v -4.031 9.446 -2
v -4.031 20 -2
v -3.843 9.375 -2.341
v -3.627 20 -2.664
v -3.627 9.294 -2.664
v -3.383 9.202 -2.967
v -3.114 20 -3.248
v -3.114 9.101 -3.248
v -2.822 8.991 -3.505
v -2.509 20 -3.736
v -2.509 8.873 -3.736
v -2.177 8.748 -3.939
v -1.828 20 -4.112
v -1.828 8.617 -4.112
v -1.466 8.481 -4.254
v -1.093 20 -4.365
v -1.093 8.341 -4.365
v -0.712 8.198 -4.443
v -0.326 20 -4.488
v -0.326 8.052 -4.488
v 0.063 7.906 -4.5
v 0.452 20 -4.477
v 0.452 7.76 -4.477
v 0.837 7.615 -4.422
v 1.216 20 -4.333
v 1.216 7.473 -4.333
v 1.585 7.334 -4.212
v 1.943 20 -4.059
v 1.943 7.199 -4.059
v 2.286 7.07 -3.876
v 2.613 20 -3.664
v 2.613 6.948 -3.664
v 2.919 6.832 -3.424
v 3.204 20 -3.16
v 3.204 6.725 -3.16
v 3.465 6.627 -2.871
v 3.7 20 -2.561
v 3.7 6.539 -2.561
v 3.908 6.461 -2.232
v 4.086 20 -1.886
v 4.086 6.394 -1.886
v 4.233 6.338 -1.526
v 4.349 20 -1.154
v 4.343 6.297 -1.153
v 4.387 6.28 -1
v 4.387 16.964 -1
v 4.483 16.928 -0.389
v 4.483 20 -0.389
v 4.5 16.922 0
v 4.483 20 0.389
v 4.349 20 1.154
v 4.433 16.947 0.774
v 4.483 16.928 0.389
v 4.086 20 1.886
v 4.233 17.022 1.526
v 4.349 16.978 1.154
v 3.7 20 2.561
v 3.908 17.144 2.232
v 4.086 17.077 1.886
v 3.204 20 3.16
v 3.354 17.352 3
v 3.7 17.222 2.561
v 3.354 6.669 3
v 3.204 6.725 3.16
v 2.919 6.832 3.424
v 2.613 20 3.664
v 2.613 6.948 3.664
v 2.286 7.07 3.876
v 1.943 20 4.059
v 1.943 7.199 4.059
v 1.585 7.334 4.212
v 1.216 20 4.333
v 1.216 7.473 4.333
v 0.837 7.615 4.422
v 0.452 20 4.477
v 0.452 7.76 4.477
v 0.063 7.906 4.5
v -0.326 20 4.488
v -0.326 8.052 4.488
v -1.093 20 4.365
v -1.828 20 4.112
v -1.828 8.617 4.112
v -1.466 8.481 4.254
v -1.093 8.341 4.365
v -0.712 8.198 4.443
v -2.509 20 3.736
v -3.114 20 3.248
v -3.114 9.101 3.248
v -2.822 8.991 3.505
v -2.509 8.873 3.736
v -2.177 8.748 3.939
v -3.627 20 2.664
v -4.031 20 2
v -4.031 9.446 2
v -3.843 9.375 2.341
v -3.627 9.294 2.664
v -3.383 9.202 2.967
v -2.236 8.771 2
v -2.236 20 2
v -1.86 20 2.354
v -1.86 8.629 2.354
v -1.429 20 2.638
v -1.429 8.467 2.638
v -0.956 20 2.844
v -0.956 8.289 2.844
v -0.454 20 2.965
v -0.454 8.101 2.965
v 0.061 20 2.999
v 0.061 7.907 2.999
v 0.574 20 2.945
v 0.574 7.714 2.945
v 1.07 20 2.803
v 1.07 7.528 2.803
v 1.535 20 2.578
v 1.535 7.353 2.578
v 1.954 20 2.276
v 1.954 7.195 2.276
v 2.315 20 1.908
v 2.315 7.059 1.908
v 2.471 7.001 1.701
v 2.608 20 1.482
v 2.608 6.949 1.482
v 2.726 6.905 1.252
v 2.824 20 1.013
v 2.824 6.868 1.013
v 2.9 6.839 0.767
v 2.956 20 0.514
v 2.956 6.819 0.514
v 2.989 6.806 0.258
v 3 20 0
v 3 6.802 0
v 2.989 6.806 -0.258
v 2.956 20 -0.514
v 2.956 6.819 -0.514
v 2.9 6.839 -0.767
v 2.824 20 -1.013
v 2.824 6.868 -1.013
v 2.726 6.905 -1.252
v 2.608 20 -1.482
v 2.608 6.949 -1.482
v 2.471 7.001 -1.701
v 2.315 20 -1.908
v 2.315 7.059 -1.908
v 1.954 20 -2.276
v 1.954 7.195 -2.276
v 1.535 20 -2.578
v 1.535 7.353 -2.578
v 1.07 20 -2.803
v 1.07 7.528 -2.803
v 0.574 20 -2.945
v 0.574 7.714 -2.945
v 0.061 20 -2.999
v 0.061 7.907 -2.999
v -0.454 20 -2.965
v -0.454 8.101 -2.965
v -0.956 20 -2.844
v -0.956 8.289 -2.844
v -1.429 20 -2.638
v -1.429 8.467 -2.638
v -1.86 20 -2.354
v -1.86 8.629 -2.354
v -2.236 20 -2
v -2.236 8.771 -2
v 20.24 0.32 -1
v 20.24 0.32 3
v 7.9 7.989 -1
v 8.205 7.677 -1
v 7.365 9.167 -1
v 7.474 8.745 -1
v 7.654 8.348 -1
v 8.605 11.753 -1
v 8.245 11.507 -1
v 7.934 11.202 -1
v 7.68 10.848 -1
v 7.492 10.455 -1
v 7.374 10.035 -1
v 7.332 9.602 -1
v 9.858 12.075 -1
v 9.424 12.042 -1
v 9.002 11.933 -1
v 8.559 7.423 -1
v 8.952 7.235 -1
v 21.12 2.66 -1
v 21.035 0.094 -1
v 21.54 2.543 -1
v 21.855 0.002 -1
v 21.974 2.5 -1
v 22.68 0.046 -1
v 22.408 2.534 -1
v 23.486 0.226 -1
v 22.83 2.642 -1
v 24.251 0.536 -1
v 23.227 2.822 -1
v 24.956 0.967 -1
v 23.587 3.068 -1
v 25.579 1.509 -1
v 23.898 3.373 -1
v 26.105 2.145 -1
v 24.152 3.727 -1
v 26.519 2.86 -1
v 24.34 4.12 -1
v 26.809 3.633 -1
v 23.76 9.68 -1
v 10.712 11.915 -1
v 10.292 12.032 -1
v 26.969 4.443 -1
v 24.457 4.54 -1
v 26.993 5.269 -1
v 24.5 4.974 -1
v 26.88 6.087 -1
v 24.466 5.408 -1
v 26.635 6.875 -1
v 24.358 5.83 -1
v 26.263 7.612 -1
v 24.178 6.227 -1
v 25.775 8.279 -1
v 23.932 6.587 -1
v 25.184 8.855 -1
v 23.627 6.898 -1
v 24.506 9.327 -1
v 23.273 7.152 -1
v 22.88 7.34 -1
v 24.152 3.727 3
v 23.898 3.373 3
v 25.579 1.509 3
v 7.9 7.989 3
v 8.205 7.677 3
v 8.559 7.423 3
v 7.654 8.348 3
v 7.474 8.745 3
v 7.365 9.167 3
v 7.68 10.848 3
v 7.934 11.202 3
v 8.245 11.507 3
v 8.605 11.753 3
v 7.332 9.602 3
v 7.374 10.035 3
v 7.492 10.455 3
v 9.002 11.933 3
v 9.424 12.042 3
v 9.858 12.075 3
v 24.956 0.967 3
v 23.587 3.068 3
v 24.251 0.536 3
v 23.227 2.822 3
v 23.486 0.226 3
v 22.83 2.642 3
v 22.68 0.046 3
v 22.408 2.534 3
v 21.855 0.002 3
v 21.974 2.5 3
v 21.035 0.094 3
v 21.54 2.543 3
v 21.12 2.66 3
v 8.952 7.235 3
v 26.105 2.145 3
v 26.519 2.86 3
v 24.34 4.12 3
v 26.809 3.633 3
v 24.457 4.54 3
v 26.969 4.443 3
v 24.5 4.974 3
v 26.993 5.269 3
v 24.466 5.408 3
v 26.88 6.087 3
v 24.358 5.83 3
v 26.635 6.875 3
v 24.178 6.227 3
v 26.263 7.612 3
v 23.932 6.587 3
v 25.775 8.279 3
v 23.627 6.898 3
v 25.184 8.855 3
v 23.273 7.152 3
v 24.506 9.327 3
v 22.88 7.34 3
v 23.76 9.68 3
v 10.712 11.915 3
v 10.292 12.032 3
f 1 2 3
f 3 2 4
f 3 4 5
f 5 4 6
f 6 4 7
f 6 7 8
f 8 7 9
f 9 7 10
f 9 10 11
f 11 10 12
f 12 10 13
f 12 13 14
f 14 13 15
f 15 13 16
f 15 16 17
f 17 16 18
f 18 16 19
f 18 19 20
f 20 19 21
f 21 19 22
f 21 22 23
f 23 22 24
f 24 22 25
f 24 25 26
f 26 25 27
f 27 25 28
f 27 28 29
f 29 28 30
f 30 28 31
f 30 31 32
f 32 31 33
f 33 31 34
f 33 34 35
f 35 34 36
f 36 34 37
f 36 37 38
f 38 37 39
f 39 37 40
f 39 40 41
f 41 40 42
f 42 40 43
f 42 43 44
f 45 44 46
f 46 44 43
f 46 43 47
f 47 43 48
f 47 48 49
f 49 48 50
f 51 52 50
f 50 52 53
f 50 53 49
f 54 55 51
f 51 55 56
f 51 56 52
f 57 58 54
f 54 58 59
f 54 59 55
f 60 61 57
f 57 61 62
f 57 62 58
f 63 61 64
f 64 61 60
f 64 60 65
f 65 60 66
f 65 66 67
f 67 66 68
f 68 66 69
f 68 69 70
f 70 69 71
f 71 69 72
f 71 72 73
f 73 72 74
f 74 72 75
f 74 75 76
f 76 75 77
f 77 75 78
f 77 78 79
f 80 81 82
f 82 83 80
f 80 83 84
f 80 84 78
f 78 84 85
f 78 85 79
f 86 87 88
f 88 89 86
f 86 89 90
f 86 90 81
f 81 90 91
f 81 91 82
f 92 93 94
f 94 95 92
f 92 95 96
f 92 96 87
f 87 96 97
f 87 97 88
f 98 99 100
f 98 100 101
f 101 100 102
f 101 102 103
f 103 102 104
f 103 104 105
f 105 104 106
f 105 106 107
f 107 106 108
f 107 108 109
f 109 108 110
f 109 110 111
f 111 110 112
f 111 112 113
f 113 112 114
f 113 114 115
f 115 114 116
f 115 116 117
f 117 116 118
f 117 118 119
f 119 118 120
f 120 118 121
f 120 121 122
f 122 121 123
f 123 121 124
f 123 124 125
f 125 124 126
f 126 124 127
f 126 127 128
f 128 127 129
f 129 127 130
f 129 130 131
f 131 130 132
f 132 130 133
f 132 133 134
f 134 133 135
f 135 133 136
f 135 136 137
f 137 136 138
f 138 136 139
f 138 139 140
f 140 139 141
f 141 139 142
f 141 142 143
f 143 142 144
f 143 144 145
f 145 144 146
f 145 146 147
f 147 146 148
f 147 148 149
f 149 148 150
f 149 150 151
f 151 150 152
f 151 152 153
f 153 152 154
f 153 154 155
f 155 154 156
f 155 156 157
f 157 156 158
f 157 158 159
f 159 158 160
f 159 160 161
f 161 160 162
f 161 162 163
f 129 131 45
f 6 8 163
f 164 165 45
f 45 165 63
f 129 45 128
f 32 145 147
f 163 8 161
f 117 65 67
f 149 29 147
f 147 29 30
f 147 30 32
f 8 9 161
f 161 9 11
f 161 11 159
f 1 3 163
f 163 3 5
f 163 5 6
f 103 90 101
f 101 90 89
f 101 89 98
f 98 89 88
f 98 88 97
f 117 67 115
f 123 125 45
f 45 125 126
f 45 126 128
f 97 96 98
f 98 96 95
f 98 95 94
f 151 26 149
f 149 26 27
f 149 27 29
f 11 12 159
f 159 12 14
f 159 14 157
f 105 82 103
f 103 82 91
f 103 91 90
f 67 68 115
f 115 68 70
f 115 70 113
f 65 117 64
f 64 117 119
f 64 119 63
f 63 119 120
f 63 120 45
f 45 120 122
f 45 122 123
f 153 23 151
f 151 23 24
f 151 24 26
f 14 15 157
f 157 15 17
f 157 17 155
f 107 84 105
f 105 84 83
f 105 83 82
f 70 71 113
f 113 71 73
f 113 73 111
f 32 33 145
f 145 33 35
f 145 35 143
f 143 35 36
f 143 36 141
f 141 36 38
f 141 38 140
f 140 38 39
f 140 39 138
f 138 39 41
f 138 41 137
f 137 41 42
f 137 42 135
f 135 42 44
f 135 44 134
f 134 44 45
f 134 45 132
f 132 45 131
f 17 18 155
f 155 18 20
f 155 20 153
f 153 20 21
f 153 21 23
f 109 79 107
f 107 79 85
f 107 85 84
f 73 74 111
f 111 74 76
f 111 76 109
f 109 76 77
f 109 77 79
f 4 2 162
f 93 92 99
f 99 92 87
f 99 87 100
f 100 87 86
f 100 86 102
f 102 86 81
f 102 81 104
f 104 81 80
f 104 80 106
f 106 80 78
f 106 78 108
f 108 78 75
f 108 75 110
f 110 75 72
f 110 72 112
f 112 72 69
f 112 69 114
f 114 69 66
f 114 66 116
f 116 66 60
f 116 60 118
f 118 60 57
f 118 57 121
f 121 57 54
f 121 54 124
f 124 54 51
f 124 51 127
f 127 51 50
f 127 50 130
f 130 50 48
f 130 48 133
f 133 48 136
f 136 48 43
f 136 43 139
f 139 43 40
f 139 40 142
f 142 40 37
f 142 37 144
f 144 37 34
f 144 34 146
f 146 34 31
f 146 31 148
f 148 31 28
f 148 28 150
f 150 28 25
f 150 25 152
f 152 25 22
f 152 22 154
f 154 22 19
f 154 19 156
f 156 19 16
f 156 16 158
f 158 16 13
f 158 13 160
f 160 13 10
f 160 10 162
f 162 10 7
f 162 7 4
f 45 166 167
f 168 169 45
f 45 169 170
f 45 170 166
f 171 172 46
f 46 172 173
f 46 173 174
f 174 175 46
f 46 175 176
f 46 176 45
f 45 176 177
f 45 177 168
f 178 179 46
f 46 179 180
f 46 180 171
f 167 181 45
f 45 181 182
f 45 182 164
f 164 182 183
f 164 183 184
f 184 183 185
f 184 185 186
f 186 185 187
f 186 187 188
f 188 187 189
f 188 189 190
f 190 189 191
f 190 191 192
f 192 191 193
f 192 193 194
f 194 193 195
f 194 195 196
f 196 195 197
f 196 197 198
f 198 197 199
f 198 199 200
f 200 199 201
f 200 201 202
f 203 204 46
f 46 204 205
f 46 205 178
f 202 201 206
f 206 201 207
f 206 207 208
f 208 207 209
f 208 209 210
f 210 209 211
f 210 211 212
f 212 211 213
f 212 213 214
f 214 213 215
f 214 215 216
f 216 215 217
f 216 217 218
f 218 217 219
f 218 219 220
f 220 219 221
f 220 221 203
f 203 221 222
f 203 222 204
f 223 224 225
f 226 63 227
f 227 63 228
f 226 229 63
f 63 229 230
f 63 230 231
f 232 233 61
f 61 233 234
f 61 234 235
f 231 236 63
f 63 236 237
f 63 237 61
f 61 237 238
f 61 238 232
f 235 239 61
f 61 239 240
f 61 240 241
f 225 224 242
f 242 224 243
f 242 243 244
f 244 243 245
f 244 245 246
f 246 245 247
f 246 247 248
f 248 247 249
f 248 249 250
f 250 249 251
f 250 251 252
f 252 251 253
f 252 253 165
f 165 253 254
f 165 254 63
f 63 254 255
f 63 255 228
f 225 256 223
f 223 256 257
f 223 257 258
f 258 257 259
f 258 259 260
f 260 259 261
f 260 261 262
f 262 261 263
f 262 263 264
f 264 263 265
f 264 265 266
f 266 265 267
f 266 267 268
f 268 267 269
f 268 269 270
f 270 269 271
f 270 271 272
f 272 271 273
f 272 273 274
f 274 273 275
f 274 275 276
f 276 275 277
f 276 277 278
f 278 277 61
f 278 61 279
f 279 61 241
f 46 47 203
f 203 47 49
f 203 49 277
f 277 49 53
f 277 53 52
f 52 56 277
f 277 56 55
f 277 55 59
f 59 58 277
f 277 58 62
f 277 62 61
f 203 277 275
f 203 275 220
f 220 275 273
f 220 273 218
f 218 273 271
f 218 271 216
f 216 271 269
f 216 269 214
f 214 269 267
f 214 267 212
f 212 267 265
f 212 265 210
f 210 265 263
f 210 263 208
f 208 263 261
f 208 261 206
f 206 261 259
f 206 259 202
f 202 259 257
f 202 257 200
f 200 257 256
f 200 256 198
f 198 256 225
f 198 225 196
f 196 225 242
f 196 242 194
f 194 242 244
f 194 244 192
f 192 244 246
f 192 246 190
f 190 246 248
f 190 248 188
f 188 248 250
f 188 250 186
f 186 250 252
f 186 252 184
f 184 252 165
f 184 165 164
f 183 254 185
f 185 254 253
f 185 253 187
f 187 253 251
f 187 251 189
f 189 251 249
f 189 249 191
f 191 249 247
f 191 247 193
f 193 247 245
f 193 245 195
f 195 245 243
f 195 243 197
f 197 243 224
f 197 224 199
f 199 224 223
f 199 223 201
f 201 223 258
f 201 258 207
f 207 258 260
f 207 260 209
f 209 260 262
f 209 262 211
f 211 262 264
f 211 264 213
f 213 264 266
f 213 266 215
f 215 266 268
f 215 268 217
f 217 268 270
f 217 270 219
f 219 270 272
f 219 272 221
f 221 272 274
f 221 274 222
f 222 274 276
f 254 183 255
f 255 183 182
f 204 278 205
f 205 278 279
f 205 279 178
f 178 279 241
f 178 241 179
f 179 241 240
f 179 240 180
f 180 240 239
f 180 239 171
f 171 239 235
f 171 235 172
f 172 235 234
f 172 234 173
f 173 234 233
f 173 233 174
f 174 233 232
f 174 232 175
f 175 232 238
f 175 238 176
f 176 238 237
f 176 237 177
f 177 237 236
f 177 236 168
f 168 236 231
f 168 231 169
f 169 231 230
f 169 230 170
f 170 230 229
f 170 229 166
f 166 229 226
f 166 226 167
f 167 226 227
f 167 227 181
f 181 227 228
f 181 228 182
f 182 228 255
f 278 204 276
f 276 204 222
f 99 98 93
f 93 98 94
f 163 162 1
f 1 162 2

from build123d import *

# Parameters (mm, degrees)
EXTRUDE_1_DEPTH      = 3
EXTRUDE_1_DEPTH_BACK = 1
SKETCH_2_R           = 4.5
SKETCH_2_R_2         = 3
EXTRUDE_2_DEPTH      = 20
SKETCH_3_R           = 3
CUT_EXTRUDE_1_DEPTH  = 34.900589965
CUT_EXTRUDE_2_REACH  = 35.901
SKETCH_4_R           = 9.774013962
SKETCH_5_W           = 13.881504323
SKETCH_5_H           = 4
CUT_EXTRUDE_4_DEPTH  = 34.900589965


with BuildPart() as part:
    # Эскиз1 → Бобышка-Вытянуть1 (new, two sides: drawn at the far end of the back side and taken through both)
    with BuildSketch(Plane.XY.offset(-EXTRUDE_1_DEPTH_BACK)):
        with BuildLine():
            Line((23.759671021, 9.680123705), (0, 18.61347829))
            Line((0, 18.61347829), (0, 7.93))
            Line((0, 7.93), (20.240328979, 0.319876295))
            ThreePointArc((20.240328979, 0.319876295), (26.680123705, 3.240328979), (23.759671021, 9.680123705))
        make_face()
        with BuildLine():
            Line((8.951842855, 7.235082801), (21.12016449, 2.659938147))
            ThreePointArc((21.12016449, 2.659938147), (24.340061853, 4.12016449), (22.87983551, 7.340061853))
            Line((22.87983551, 7.340061853), (10.711513876, 11.915206507))
            ThreePointArc((10.711513876, 11.915206507), (7.491616513, 10.454980164), (8.951842855, 7.235082801))
        make_face(mode=Mode.SUBTRACT)
    extrude(amount=EXTRUDE_1_DEPTH + EXTRUDE_1_DEPTH_BACK)

    # Эскиз2 → Бобышка-Вытянуть2 (add)
    with BuildSketch(Plane(origin=(0, 0, 0), x_dir=(1, 0, 0), z_dir=(0, 1, 0))):
        with Locations(Location((0, 0, 0), (0, 0, 270))):
            Circle(SKETCH_2_R)
        with Locations(Location((0, 0, 0), (0, 0, 270))):
            Circle(SKETCH_2_R_2, mode=Mode.SUBTRACT)
    extrude(amount=EXTRUDE_2_DEPTH)

    # Эскиз3 → Вырез-Вытянуть1 (cut, through all)
    with BuildSketch(Plane(origin=(0, 0, 0), x_dir=(-1, 0, 0), z_dir=(0, -1, 0))):
        with Locations(Location((0, 0, 0), (0, 0, 270))):
            Circle(SKETCH_3_R)
    extrude(amount=-CUT_EXTRUDE_1_DEPTH, mode=Mode.SUBTRACT)

    # Вырез-Вытянуть2: up to this face of the body (flat: up to its plane)
    cut_extrude_2_end = Plane(part.part.faces().sort_by_distance((12.227229865, 3.33270655, 1.020399835))[0])
    # Эскиз4 → Вырез-Вытянуть2 (cut, up to the picked face)
    with BuildSketch(Plane.XZ, mode=Mode.PRIVATE) as cut_extrude_2_sk1:
        Circle(SKETCH_4_R)
    cut_extrude_2_tool1 = split(extrude(cut_extrude_2_sk1.sketch, amount=-CUT_EXTRUDE_2_REACH, mode=Mode.PRIVATE), bisect_by=cut_extrude_2_end, keep=Keep.BOTH, mode=Mode.PRIVATE)
    add(cut_extrude_2_tool1.solids().sort_by(Axis((0, 0, 0), (0, 1, 0)))[0], mode=Mode.SUBTRACT)

    # Эскиз5 → Вырез-Вытянуть4 (cut, through all)
    with BuildSketch(Plane(origin=(0, 0, 0), x_dir=(1, 0, 0), z_dir=(0, 1, 0))):
        with Locations((-7.880628676, 0)):
            Rectangle(SKETCH_5_W, SKETCH_5_H)
    extrude(amount=CUT_EXTRUDE_4_DEPTH, mode=Mode.SUBTRACT)


solid = part.part
